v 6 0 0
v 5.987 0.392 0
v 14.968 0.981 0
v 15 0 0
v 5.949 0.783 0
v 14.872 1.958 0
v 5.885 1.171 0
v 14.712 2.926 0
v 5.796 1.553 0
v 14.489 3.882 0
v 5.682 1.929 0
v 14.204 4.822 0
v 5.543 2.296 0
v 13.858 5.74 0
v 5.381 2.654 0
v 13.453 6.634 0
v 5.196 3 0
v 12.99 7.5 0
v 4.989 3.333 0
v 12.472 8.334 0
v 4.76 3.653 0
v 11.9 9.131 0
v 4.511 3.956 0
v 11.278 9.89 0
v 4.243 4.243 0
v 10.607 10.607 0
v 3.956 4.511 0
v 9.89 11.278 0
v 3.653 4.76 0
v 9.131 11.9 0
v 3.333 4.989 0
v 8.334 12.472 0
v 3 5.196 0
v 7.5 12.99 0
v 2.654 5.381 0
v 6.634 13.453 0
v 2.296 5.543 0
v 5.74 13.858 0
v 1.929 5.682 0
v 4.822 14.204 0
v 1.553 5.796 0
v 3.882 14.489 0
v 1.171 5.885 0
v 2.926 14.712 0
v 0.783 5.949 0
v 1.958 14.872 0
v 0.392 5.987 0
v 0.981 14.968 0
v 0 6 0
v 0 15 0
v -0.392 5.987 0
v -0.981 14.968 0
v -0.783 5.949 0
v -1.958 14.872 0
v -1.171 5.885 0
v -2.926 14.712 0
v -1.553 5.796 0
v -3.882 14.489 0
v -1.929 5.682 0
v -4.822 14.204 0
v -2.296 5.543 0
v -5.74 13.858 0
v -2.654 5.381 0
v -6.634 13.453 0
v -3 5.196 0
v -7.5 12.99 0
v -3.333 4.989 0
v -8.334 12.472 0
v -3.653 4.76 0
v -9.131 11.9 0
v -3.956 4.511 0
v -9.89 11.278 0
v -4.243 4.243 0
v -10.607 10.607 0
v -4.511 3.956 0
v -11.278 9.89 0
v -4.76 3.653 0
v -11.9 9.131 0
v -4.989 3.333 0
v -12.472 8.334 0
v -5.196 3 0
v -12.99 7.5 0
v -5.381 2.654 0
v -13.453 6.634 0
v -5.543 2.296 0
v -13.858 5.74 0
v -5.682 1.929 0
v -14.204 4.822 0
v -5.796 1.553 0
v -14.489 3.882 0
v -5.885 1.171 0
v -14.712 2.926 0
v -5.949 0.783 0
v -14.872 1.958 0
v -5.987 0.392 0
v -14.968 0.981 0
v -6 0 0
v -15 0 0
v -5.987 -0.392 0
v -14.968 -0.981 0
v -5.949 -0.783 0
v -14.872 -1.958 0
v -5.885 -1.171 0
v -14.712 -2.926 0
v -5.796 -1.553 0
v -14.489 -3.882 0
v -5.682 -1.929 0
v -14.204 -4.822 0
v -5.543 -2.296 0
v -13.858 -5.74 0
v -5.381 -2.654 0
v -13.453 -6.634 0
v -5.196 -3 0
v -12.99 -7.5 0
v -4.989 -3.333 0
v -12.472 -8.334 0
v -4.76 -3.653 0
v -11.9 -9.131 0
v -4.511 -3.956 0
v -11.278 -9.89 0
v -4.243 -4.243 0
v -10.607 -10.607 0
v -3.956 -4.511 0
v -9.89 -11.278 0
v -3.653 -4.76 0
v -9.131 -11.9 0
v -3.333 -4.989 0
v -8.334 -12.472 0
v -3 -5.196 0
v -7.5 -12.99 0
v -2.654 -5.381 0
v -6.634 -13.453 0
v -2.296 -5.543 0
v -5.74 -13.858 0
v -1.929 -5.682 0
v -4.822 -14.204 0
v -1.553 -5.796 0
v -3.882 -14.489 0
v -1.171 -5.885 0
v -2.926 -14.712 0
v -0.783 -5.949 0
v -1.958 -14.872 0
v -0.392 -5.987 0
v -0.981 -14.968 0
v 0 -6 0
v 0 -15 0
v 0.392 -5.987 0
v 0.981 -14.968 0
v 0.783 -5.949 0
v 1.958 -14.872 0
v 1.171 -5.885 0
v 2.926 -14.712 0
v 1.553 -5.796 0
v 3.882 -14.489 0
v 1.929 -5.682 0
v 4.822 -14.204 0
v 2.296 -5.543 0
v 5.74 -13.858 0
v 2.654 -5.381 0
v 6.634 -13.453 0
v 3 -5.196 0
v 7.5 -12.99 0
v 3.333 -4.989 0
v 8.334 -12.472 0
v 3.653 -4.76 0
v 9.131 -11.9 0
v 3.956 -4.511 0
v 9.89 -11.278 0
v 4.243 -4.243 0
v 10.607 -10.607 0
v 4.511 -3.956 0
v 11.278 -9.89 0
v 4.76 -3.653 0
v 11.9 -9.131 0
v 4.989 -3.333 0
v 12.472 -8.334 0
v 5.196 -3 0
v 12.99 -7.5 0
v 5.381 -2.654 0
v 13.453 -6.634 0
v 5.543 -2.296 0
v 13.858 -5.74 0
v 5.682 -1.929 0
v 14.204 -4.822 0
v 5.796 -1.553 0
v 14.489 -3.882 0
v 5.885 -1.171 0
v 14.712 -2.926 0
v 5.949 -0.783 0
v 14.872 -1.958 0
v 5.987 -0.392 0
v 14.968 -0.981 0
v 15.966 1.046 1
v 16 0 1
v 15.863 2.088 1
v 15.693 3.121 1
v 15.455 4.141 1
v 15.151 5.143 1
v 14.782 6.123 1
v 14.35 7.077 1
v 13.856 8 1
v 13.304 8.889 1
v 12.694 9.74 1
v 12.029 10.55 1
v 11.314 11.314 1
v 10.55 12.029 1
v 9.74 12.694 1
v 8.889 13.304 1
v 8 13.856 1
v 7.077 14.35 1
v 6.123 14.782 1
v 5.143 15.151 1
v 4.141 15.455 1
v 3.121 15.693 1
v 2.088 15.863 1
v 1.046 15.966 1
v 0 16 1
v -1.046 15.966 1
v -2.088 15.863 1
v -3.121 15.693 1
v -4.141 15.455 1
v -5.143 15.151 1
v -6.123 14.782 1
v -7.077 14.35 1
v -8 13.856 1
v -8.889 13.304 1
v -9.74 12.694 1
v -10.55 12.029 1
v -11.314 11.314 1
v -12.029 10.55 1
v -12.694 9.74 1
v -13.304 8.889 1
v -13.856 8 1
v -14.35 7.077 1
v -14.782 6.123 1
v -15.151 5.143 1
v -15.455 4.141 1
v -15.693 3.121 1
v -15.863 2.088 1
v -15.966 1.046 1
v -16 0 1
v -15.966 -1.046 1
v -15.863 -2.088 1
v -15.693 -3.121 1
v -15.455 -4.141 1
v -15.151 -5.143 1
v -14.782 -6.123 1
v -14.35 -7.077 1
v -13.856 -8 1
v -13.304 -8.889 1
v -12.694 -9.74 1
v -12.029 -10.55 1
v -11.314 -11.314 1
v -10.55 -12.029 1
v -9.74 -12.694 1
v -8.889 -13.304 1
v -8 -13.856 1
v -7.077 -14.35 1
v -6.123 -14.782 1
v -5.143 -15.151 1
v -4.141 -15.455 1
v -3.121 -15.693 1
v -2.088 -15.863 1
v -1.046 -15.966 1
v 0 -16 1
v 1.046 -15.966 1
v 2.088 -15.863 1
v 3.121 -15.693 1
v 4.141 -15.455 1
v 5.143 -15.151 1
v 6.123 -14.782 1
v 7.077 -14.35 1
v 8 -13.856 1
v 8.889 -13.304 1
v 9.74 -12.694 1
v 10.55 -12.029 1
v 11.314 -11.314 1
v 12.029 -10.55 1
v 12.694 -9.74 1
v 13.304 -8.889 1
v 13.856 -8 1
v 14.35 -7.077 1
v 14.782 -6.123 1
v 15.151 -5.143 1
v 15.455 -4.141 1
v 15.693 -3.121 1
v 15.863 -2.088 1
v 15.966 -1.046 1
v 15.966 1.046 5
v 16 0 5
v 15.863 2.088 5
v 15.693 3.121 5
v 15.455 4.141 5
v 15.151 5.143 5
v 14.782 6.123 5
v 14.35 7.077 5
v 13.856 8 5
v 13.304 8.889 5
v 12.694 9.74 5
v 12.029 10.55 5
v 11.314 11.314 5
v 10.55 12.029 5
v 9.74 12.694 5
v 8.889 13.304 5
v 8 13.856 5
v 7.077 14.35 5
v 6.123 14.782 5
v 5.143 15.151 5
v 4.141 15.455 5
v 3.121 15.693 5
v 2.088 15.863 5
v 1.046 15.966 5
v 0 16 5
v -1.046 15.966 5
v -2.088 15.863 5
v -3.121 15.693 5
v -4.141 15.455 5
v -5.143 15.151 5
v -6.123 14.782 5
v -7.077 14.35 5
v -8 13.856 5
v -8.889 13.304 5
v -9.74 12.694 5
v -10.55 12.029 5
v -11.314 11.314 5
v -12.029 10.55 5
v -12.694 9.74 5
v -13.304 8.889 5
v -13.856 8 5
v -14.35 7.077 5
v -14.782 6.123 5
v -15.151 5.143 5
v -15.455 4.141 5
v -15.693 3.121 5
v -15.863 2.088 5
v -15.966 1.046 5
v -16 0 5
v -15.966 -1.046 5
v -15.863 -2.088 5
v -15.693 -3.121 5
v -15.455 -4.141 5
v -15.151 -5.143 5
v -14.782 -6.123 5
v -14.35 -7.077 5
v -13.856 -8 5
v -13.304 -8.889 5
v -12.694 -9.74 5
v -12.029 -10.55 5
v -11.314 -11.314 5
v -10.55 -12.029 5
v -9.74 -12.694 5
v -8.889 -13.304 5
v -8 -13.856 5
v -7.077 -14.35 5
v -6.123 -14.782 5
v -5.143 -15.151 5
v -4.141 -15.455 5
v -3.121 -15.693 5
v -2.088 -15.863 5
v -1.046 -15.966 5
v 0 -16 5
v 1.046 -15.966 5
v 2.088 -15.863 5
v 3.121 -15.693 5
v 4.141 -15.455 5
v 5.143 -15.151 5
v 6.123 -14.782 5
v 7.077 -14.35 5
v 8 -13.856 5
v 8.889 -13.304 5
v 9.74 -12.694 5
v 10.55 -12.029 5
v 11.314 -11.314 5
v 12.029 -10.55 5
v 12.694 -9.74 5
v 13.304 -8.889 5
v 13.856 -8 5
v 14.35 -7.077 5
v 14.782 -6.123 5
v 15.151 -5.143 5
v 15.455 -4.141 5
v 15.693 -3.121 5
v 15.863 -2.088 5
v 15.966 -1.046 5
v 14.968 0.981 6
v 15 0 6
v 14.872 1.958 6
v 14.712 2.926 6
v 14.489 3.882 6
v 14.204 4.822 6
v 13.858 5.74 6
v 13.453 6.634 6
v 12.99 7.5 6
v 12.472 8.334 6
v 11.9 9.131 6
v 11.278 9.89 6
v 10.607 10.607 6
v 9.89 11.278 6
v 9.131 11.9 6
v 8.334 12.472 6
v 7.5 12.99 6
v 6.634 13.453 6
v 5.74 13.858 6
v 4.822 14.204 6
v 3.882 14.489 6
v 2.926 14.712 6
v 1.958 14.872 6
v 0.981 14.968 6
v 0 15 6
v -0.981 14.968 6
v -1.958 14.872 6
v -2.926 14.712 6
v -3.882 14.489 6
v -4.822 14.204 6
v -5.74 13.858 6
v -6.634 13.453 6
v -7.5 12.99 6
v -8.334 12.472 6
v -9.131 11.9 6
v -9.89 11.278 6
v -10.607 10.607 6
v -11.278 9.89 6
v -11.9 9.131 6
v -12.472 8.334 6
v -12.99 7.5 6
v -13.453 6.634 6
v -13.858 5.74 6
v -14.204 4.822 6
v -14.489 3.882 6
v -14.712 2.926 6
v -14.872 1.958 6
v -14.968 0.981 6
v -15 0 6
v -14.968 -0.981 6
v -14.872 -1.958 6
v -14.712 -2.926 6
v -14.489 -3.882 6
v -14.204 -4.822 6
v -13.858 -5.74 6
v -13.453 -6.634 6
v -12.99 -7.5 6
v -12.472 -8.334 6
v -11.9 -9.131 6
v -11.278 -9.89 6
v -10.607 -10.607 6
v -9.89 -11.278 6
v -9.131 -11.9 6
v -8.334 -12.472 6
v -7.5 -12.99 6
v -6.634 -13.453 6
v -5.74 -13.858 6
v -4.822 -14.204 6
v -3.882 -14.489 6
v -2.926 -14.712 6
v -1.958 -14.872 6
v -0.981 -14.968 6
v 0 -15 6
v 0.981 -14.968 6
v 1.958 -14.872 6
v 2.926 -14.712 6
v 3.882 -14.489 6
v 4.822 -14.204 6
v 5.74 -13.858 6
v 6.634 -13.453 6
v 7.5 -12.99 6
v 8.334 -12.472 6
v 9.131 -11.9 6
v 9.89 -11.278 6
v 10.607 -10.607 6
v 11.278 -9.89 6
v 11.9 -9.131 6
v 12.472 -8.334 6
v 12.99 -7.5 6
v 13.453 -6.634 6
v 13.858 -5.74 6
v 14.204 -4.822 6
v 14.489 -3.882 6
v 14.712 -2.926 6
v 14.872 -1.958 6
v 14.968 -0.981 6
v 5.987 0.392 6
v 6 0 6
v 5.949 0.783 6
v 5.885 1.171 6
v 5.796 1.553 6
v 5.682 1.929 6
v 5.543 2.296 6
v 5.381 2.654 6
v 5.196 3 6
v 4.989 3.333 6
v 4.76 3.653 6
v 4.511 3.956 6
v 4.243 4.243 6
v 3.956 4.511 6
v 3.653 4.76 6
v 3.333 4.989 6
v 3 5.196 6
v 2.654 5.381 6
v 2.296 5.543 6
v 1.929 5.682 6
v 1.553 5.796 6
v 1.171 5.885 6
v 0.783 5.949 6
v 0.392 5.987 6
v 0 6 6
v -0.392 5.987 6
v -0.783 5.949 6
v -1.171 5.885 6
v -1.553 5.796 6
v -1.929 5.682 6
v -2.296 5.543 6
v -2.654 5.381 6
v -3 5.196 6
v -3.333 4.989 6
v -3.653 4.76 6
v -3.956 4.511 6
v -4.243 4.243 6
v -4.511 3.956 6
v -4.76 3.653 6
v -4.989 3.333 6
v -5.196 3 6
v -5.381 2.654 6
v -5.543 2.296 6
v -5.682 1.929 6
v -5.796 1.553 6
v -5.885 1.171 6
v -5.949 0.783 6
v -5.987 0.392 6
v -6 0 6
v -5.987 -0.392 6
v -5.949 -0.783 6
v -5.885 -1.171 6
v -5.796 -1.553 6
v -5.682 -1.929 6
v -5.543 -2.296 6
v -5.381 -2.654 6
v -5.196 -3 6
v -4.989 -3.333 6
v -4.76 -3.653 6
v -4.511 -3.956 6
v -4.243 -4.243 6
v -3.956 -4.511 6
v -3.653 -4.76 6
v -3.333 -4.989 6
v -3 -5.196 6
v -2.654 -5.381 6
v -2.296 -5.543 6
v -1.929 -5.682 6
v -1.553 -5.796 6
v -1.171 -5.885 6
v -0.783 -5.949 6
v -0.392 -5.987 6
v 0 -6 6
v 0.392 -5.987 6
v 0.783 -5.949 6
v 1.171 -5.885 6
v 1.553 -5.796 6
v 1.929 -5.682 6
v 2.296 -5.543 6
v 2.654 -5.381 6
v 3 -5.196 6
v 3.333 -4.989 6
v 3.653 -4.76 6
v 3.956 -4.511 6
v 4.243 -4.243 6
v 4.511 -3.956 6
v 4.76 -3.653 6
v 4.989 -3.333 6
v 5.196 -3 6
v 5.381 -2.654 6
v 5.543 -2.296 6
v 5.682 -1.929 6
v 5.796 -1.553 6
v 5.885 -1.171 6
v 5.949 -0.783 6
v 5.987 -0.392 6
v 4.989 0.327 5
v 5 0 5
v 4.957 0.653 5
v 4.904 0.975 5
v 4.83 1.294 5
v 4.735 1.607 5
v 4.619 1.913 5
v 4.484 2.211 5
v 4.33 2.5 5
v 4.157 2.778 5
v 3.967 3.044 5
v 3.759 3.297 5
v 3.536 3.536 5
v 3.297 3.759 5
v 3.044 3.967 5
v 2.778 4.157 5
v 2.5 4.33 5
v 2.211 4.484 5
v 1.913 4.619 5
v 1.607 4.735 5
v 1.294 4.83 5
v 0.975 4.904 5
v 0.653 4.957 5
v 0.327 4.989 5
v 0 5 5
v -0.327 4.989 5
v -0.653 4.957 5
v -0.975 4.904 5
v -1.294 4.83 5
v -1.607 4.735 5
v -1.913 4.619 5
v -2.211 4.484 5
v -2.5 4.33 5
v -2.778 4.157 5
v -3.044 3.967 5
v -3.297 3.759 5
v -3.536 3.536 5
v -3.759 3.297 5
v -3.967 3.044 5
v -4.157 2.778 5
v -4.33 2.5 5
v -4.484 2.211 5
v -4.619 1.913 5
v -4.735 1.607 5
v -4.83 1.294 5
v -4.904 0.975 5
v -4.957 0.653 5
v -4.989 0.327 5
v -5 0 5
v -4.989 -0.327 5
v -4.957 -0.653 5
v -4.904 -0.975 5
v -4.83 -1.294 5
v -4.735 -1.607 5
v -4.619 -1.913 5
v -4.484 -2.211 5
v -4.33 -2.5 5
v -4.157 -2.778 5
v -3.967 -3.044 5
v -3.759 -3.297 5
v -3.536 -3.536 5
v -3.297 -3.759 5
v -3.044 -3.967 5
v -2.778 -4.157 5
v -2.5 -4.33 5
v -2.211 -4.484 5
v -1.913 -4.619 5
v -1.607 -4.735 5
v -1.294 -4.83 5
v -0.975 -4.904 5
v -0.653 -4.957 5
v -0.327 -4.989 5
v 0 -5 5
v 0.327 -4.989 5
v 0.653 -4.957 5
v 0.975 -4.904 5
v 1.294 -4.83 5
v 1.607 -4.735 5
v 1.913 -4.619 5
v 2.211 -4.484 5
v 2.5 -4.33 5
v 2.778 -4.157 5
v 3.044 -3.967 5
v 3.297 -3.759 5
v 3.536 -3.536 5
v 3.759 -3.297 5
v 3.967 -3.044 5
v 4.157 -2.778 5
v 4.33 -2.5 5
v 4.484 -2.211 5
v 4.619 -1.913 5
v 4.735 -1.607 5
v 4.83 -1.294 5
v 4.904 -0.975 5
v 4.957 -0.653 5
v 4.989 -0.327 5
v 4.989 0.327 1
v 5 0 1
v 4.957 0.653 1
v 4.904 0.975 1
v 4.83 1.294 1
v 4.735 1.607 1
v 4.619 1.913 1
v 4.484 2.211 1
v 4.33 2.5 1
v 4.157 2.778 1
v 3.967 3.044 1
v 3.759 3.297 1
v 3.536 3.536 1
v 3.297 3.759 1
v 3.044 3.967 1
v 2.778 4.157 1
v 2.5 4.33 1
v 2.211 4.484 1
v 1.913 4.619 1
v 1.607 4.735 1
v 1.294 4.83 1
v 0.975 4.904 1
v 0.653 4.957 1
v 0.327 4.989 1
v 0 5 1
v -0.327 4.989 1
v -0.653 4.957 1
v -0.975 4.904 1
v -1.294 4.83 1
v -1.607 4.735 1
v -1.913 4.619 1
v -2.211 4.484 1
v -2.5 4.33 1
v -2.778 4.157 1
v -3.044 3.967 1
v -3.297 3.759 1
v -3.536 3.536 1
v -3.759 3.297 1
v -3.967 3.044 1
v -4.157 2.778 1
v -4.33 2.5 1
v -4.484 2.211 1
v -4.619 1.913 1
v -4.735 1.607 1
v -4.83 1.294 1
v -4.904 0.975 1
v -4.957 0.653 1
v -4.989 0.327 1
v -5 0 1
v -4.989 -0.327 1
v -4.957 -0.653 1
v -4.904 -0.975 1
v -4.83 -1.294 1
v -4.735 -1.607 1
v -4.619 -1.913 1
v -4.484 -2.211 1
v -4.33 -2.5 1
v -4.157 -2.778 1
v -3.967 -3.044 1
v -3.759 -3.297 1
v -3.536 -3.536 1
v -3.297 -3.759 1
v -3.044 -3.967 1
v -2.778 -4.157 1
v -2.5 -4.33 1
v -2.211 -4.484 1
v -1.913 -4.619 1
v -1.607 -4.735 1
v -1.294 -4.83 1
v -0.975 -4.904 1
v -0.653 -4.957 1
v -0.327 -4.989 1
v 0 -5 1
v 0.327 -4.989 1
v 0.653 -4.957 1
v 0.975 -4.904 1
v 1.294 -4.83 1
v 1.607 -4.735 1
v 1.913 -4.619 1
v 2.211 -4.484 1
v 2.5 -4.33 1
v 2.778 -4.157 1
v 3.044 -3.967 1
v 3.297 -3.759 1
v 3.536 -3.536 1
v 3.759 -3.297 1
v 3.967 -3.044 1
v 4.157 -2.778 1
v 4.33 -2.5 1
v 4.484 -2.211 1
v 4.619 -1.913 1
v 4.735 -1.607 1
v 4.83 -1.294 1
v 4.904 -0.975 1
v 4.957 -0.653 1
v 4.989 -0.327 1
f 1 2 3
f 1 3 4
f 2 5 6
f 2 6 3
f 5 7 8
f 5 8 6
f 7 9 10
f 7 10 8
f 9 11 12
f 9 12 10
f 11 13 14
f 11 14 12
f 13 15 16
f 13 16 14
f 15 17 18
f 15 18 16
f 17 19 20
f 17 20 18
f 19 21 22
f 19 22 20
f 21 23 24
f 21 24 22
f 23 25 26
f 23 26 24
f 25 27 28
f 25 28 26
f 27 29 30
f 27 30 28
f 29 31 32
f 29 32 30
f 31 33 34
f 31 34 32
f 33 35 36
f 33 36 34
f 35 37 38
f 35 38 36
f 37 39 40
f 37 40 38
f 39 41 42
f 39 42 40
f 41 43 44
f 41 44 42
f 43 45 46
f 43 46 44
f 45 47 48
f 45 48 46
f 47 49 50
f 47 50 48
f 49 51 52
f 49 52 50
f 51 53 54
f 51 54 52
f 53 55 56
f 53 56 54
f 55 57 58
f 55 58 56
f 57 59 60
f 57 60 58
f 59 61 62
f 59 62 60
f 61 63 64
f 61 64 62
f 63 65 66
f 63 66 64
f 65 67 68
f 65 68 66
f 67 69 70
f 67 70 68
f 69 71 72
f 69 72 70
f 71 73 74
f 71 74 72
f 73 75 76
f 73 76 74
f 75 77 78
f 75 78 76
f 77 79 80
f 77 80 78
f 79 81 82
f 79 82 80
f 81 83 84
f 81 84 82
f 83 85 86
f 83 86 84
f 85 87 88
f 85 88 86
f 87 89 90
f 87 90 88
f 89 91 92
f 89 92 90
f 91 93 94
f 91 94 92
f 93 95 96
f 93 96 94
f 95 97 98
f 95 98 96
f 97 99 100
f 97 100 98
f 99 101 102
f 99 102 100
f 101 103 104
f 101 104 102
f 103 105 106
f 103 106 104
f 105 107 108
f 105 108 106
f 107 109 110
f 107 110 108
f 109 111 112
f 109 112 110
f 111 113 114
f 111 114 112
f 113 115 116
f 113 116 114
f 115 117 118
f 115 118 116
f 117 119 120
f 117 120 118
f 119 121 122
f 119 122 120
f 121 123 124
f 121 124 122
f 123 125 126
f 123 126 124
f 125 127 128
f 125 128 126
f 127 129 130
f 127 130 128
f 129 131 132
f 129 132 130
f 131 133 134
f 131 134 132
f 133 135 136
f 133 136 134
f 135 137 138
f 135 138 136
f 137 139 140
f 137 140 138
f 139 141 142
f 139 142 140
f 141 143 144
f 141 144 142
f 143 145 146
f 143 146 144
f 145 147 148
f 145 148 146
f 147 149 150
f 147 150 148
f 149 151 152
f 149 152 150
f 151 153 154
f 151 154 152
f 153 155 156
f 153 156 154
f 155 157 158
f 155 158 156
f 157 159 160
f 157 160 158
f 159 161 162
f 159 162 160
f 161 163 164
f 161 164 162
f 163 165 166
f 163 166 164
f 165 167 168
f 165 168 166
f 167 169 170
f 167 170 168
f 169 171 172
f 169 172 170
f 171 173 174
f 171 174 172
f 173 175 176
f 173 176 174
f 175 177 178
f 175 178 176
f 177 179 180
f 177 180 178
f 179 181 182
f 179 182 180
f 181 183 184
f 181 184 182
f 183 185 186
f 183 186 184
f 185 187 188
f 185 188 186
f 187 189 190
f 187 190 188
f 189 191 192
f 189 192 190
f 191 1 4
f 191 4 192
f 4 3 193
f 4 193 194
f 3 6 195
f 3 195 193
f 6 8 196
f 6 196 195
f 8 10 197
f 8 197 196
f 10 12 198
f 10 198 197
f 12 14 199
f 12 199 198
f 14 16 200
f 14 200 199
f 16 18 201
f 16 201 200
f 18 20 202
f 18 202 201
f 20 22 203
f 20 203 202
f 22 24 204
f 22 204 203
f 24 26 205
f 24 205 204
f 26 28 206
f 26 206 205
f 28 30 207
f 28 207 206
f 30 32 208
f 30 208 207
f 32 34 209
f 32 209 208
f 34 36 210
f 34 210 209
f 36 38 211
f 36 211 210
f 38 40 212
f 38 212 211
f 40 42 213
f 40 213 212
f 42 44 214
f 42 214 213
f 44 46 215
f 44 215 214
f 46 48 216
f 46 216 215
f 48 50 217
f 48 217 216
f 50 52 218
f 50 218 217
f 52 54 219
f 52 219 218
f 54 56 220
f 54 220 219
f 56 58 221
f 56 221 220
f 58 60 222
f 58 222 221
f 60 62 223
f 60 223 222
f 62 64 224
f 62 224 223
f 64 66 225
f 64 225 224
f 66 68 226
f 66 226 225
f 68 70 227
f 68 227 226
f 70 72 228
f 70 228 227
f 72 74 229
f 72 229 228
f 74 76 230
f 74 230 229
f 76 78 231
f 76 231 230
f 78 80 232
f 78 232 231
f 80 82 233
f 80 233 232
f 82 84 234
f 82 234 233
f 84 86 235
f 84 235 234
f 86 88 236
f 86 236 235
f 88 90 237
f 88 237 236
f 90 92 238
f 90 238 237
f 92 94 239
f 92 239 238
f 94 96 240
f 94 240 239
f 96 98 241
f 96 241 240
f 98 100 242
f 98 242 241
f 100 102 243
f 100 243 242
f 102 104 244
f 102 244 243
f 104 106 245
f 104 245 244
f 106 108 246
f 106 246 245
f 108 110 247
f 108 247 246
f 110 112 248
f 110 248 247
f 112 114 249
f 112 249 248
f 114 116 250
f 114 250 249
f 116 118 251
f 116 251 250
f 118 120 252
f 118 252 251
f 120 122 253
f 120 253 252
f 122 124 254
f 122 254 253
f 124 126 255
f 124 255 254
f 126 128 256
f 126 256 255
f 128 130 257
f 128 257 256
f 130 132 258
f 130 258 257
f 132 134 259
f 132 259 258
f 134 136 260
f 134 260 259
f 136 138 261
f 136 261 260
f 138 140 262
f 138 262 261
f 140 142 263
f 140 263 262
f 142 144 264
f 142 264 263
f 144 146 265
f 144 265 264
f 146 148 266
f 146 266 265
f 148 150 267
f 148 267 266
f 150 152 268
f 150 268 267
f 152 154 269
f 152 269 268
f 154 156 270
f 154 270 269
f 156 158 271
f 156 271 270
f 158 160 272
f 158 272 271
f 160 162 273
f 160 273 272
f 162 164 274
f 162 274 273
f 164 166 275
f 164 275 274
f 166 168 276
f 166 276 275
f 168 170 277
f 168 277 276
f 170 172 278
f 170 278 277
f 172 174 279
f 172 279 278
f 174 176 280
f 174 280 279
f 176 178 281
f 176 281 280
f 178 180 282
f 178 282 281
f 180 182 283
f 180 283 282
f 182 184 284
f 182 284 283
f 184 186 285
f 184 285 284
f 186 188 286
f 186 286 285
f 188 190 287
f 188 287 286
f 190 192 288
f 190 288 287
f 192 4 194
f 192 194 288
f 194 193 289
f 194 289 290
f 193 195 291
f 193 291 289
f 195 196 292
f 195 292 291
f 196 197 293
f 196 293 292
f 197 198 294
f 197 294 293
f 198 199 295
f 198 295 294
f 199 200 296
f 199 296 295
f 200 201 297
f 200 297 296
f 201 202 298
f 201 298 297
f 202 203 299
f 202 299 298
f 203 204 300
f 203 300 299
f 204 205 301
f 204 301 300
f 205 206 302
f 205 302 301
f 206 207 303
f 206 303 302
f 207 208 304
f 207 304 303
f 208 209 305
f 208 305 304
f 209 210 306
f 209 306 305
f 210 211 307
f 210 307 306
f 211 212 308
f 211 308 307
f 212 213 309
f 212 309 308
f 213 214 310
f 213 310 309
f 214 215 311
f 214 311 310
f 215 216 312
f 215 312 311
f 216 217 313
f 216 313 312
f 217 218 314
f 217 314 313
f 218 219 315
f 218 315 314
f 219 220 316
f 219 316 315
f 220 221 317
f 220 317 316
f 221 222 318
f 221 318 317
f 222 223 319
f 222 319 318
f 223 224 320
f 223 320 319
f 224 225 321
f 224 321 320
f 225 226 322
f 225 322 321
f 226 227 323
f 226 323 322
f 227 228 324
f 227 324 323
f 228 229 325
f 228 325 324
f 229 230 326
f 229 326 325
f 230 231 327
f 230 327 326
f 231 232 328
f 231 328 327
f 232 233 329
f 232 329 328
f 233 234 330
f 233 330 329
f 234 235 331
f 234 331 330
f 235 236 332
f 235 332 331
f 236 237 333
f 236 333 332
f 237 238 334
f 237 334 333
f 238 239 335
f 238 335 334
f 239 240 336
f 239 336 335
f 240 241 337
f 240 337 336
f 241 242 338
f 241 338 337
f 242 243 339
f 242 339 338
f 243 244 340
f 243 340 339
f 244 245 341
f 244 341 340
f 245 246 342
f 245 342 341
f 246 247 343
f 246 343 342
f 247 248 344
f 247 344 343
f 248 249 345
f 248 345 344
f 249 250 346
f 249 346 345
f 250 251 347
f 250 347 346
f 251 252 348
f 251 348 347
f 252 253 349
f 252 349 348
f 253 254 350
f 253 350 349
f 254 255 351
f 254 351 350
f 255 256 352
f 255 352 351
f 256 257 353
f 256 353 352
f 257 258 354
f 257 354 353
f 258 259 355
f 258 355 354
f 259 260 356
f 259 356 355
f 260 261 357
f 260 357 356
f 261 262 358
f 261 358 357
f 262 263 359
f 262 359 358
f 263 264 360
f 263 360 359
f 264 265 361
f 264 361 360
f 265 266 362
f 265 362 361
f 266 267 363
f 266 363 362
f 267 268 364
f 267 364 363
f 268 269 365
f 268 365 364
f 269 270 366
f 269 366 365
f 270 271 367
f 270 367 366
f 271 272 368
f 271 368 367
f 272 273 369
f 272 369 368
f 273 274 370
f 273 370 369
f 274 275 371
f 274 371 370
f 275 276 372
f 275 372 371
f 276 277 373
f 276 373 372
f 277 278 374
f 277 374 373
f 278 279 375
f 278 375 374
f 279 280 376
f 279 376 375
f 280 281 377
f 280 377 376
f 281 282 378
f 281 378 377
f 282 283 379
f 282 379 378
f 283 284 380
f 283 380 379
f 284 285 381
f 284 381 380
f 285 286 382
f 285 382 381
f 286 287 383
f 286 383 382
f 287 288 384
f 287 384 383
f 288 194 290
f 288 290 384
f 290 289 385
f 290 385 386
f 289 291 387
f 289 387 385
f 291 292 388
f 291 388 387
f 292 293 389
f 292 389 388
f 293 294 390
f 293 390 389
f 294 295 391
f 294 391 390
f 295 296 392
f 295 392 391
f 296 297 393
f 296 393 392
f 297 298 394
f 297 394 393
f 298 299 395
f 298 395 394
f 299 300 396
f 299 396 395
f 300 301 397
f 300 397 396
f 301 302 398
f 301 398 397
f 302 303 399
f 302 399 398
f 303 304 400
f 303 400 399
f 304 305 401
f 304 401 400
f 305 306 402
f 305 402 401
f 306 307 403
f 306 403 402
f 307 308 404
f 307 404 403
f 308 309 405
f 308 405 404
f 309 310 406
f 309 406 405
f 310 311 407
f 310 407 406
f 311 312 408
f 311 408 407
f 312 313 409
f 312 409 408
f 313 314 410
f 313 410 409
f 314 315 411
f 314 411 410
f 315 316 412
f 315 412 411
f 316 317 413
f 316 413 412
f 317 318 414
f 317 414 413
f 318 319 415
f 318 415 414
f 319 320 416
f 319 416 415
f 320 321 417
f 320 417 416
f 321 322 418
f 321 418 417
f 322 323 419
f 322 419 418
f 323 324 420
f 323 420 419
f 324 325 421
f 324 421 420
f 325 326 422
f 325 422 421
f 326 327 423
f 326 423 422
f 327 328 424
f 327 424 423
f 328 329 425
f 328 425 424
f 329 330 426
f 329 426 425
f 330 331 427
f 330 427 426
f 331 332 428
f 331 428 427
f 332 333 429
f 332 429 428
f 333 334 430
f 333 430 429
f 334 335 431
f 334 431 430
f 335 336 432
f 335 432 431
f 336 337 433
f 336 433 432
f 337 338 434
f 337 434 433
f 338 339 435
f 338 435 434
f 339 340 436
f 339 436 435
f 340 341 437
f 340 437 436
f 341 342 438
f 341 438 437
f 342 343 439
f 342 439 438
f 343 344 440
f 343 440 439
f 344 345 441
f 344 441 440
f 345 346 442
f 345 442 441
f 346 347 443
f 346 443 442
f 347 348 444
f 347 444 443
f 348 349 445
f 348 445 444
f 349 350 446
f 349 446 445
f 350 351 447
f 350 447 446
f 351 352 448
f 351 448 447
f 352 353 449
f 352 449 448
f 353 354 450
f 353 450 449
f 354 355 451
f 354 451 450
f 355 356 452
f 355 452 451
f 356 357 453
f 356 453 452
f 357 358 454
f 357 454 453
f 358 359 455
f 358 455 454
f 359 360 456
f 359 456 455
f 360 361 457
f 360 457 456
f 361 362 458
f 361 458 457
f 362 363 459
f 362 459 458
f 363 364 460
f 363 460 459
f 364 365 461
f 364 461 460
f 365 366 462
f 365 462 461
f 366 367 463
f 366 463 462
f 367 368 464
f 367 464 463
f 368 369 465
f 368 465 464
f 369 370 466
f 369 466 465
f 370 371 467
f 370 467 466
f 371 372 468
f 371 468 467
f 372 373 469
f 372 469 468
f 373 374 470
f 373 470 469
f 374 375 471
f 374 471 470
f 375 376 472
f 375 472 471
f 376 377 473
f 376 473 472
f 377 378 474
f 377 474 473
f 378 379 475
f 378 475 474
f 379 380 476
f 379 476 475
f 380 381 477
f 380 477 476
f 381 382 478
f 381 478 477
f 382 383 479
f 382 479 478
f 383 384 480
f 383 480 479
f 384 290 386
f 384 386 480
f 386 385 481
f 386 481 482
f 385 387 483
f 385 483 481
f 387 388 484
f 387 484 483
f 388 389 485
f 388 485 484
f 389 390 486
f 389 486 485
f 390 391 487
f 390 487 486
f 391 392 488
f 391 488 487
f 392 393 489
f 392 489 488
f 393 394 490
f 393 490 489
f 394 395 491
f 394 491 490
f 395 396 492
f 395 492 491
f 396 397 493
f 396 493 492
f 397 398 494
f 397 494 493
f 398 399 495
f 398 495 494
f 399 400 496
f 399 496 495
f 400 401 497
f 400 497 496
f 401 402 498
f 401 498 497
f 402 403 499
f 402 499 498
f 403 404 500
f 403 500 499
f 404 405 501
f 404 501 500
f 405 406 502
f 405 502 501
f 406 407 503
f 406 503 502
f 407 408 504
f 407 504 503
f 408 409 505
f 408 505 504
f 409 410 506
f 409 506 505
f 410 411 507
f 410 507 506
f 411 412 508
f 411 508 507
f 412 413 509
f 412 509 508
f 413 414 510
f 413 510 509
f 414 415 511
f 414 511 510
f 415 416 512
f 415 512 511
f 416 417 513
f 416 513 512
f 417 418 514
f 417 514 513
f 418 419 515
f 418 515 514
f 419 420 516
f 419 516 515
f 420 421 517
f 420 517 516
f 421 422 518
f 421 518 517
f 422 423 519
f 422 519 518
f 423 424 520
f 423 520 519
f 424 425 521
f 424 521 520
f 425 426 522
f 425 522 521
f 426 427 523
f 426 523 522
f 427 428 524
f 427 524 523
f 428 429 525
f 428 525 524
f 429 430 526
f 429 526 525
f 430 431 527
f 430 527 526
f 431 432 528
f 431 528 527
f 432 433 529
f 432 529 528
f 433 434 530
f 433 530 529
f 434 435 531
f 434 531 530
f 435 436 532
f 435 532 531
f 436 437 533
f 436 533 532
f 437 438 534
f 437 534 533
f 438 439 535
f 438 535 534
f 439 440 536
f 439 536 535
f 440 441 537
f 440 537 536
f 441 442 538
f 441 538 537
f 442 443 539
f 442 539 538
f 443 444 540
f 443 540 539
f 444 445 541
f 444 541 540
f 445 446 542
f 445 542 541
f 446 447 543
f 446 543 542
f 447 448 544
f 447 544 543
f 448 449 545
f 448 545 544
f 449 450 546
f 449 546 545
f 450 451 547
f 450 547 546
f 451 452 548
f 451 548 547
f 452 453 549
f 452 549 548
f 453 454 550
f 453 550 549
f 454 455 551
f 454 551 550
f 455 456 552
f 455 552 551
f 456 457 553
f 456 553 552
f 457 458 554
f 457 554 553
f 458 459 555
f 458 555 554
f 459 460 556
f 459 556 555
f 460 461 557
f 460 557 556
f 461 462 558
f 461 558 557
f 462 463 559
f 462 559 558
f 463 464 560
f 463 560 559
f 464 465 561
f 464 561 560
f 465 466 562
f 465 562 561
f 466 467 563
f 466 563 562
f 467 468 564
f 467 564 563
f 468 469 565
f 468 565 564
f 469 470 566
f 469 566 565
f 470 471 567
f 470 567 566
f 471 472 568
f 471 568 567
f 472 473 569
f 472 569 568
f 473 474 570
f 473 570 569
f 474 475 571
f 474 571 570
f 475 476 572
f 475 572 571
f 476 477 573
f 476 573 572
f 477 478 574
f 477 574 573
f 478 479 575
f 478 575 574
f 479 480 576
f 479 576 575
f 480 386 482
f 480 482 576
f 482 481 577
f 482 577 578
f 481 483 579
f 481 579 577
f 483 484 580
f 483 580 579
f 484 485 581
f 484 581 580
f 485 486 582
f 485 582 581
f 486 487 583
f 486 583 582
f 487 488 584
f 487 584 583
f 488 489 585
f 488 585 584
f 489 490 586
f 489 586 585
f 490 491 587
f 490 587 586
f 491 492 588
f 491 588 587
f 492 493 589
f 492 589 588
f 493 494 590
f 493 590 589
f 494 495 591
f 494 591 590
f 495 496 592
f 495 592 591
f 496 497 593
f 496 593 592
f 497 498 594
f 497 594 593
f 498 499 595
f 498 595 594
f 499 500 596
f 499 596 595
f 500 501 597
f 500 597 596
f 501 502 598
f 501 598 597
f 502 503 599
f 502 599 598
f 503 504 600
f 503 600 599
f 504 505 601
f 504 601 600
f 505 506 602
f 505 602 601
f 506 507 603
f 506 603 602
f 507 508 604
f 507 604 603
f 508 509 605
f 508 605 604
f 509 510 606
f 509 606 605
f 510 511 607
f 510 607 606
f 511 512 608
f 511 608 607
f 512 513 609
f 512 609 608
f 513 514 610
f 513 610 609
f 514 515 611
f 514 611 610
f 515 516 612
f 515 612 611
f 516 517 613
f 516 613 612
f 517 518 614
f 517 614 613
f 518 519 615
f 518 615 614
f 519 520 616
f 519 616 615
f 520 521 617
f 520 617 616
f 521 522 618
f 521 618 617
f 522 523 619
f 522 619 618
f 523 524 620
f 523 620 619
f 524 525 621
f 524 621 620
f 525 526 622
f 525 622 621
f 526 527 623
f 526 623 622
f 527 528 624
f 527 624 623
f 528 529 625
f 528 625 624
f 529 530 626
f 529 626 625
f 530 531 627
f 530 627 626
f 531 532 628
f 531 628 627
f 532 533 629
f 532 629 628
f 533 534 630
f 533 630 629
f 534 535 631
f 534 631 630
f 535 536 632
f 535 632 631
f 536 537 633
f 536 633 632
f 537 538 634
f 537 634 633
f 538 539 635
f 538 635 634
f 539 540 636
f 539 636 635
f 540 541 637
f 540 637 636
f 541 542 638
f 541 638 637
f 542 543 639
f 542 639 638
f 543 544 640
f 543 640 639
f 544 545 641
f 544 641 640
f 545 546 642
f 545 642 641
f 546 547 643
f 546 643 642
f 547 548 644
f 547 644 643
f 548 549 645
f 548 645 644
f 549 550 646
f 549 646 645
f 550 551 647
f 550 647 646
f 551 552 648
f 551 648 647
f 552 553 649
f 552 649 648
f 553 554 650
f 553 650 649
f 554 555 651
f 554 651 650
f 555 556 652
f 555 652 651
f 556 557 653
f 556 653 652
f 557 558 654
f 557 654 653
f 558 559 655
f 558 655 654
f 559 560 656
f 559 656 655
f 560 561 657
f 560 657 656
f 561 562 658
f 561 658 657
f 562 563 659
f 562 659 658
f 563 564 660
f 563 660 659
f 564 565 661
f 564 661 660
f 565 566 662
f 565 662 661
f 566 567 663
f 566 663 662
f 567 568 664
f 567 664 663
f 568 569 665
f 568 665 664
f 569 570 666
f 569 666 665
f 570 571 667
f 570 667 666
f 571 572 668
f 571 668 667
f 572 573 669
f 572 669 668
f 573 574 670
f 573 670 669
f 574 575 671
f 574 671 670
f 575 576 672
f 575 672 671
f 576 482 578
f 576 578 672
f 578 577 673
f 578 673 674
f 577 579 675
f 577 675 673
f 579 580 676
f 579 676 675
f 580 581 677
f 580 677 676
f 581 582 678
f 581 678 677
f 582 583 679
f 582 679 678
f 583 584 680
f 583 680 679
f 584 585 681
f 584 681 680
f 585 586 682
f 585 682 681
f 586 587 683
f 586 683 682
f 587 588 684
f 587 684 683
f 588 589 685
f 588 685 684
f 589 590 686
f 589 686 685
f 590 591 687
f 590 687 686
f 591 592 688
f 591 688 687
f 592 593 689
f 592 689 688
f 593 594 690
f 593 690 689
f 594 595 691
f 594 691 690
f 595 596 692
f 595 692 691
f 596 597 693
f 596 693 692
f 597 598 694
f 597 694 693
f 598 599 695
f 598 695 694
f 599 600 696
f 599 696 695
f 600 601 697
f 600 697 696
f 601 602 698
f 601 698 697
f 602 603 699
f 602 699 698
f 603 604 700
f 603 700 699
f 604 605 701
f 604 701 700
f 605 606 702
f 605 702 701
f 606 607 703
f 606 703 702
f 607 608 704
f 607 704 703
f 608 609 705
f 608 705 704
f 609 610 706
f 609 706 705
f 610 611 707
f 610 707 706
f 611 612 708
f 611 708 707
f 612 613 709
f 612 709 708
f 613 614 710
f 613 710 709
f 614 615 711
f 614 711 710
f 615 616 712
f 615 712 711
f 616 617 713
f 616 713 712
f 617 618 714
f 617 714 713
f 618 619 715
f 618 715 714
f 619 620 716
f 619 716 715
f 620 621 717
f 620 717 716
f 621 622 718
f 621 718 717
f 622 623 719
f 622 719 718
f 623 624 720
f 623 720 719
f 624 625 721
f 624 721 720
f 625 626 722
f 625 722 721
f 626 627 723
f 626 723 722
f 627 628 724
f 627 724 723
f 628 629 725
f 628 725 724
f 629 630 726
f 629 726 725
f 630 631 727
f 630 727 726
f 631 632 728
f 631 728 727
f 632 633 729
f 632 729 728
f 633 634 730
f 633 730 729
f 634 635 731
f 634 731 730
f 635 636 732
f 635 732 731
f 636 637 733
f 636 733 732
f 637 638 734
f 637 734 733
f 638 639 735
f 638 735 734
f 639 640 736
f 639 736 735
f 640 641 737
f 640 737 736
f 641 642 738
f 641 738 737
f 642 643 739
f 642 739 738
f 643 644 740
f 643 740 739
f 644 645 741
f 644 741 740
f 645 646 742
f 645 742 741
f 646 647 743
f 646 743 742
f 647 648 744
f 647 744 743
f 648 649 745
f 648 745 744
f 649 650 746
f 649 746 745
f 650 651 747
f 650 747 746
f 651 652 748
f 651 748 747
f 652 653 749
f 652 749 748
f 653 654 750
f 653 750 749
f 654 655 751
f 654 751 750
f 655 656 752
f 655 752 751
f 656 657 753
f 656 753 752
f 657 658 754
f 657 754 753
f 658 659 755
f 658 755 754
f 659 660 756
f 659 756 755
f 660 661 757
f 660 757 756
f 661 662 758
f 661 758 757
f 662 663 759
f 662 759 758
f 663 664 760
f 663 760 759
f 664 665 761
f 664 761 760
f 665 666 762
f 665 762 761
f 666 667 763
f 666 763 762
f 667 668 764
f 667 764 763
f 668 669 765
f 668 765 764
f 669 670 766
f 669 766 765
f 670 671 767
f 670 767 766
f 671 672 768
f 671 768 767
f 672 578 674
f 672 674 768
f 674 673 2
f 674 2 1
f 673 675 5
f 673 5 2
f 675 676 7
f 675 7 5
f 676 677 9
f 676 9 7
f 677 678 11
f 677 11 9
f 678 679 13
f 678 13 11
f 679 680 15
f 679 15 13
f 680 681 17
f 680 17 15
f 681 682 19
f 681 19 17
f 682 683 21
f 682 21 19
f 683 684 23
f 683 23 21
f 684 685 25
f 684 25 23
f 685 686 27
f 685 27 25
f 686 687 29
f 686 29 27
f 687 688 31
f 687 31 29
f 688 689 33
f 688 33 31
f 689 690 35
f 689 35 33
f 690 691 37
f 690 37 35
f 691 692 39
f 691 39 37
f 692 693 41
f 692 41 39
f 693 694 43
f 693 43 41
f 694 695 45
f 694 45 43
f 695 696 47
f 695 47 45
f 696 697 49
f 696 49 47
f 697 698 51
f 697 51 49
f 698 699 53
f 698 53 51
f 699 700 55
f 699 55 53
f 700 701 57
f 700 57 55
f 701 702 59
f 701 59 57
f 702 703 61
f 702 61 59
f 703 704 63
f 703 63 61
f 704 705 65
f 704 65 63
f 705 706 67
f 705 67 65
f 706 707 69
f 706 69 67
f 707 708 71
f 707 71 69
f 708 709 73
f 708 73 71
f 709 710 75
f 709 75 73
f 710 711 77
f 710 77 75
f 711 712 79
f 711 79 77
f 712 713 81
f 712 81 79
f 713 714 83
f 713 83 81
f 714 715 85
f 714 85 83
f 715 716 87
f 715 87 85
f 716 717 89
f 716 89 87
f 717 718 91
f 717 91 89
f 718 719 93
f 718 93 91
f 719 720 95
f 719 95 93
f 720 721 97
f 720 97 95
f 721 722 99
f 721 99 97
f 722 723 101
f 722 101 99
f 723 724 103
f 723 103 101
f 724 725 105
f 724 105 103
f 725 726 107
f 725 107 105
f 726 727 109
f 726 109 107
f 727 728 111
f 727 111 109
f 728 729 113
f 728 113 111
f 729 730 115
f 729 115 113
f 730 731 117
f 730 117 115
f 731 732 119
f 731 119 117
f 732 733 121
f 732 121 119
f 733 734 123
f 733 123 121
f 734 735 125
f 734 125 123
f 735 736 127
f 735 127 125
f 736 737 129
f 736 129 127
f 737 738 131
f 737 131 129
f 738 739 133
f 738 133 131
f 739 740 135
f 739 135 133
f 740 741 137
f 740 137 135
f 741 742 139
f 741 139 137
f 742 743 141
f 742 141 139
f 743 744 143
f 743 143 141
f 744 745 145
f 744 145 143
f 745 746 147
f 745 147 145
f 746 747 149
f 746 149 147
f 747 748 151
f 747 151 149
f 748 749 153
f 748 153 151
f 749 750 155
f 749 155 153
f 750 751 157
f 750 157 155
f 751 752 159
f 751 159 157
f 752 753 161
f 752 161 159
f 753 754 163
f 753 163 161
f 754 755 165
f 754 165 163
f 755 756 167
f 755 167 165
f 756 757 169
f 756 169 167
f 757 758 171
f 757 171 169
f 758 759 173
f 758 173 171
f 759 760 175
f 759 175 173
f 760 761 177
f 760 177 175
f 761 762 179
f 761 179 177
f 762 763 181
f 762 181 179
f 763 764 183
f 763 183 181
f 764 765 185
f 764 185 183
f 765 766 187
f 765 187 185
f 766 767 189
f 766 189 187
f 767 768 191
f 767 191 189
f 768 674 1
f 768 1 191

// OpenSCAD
// Original MechIntel educational model. CC0-1.0. Units: mm.
// Not a standardized or load-rated component.
$fn=96;
// Section points: [radius, height], mm. Edit to change the profile.
section=[[6, 0], [15, 0], [16, 1], [16, 5], [15, 6], [6, 6], [5, 5], [5, 1]];
rotate_extrude($fn=96) polygon(points=section);
